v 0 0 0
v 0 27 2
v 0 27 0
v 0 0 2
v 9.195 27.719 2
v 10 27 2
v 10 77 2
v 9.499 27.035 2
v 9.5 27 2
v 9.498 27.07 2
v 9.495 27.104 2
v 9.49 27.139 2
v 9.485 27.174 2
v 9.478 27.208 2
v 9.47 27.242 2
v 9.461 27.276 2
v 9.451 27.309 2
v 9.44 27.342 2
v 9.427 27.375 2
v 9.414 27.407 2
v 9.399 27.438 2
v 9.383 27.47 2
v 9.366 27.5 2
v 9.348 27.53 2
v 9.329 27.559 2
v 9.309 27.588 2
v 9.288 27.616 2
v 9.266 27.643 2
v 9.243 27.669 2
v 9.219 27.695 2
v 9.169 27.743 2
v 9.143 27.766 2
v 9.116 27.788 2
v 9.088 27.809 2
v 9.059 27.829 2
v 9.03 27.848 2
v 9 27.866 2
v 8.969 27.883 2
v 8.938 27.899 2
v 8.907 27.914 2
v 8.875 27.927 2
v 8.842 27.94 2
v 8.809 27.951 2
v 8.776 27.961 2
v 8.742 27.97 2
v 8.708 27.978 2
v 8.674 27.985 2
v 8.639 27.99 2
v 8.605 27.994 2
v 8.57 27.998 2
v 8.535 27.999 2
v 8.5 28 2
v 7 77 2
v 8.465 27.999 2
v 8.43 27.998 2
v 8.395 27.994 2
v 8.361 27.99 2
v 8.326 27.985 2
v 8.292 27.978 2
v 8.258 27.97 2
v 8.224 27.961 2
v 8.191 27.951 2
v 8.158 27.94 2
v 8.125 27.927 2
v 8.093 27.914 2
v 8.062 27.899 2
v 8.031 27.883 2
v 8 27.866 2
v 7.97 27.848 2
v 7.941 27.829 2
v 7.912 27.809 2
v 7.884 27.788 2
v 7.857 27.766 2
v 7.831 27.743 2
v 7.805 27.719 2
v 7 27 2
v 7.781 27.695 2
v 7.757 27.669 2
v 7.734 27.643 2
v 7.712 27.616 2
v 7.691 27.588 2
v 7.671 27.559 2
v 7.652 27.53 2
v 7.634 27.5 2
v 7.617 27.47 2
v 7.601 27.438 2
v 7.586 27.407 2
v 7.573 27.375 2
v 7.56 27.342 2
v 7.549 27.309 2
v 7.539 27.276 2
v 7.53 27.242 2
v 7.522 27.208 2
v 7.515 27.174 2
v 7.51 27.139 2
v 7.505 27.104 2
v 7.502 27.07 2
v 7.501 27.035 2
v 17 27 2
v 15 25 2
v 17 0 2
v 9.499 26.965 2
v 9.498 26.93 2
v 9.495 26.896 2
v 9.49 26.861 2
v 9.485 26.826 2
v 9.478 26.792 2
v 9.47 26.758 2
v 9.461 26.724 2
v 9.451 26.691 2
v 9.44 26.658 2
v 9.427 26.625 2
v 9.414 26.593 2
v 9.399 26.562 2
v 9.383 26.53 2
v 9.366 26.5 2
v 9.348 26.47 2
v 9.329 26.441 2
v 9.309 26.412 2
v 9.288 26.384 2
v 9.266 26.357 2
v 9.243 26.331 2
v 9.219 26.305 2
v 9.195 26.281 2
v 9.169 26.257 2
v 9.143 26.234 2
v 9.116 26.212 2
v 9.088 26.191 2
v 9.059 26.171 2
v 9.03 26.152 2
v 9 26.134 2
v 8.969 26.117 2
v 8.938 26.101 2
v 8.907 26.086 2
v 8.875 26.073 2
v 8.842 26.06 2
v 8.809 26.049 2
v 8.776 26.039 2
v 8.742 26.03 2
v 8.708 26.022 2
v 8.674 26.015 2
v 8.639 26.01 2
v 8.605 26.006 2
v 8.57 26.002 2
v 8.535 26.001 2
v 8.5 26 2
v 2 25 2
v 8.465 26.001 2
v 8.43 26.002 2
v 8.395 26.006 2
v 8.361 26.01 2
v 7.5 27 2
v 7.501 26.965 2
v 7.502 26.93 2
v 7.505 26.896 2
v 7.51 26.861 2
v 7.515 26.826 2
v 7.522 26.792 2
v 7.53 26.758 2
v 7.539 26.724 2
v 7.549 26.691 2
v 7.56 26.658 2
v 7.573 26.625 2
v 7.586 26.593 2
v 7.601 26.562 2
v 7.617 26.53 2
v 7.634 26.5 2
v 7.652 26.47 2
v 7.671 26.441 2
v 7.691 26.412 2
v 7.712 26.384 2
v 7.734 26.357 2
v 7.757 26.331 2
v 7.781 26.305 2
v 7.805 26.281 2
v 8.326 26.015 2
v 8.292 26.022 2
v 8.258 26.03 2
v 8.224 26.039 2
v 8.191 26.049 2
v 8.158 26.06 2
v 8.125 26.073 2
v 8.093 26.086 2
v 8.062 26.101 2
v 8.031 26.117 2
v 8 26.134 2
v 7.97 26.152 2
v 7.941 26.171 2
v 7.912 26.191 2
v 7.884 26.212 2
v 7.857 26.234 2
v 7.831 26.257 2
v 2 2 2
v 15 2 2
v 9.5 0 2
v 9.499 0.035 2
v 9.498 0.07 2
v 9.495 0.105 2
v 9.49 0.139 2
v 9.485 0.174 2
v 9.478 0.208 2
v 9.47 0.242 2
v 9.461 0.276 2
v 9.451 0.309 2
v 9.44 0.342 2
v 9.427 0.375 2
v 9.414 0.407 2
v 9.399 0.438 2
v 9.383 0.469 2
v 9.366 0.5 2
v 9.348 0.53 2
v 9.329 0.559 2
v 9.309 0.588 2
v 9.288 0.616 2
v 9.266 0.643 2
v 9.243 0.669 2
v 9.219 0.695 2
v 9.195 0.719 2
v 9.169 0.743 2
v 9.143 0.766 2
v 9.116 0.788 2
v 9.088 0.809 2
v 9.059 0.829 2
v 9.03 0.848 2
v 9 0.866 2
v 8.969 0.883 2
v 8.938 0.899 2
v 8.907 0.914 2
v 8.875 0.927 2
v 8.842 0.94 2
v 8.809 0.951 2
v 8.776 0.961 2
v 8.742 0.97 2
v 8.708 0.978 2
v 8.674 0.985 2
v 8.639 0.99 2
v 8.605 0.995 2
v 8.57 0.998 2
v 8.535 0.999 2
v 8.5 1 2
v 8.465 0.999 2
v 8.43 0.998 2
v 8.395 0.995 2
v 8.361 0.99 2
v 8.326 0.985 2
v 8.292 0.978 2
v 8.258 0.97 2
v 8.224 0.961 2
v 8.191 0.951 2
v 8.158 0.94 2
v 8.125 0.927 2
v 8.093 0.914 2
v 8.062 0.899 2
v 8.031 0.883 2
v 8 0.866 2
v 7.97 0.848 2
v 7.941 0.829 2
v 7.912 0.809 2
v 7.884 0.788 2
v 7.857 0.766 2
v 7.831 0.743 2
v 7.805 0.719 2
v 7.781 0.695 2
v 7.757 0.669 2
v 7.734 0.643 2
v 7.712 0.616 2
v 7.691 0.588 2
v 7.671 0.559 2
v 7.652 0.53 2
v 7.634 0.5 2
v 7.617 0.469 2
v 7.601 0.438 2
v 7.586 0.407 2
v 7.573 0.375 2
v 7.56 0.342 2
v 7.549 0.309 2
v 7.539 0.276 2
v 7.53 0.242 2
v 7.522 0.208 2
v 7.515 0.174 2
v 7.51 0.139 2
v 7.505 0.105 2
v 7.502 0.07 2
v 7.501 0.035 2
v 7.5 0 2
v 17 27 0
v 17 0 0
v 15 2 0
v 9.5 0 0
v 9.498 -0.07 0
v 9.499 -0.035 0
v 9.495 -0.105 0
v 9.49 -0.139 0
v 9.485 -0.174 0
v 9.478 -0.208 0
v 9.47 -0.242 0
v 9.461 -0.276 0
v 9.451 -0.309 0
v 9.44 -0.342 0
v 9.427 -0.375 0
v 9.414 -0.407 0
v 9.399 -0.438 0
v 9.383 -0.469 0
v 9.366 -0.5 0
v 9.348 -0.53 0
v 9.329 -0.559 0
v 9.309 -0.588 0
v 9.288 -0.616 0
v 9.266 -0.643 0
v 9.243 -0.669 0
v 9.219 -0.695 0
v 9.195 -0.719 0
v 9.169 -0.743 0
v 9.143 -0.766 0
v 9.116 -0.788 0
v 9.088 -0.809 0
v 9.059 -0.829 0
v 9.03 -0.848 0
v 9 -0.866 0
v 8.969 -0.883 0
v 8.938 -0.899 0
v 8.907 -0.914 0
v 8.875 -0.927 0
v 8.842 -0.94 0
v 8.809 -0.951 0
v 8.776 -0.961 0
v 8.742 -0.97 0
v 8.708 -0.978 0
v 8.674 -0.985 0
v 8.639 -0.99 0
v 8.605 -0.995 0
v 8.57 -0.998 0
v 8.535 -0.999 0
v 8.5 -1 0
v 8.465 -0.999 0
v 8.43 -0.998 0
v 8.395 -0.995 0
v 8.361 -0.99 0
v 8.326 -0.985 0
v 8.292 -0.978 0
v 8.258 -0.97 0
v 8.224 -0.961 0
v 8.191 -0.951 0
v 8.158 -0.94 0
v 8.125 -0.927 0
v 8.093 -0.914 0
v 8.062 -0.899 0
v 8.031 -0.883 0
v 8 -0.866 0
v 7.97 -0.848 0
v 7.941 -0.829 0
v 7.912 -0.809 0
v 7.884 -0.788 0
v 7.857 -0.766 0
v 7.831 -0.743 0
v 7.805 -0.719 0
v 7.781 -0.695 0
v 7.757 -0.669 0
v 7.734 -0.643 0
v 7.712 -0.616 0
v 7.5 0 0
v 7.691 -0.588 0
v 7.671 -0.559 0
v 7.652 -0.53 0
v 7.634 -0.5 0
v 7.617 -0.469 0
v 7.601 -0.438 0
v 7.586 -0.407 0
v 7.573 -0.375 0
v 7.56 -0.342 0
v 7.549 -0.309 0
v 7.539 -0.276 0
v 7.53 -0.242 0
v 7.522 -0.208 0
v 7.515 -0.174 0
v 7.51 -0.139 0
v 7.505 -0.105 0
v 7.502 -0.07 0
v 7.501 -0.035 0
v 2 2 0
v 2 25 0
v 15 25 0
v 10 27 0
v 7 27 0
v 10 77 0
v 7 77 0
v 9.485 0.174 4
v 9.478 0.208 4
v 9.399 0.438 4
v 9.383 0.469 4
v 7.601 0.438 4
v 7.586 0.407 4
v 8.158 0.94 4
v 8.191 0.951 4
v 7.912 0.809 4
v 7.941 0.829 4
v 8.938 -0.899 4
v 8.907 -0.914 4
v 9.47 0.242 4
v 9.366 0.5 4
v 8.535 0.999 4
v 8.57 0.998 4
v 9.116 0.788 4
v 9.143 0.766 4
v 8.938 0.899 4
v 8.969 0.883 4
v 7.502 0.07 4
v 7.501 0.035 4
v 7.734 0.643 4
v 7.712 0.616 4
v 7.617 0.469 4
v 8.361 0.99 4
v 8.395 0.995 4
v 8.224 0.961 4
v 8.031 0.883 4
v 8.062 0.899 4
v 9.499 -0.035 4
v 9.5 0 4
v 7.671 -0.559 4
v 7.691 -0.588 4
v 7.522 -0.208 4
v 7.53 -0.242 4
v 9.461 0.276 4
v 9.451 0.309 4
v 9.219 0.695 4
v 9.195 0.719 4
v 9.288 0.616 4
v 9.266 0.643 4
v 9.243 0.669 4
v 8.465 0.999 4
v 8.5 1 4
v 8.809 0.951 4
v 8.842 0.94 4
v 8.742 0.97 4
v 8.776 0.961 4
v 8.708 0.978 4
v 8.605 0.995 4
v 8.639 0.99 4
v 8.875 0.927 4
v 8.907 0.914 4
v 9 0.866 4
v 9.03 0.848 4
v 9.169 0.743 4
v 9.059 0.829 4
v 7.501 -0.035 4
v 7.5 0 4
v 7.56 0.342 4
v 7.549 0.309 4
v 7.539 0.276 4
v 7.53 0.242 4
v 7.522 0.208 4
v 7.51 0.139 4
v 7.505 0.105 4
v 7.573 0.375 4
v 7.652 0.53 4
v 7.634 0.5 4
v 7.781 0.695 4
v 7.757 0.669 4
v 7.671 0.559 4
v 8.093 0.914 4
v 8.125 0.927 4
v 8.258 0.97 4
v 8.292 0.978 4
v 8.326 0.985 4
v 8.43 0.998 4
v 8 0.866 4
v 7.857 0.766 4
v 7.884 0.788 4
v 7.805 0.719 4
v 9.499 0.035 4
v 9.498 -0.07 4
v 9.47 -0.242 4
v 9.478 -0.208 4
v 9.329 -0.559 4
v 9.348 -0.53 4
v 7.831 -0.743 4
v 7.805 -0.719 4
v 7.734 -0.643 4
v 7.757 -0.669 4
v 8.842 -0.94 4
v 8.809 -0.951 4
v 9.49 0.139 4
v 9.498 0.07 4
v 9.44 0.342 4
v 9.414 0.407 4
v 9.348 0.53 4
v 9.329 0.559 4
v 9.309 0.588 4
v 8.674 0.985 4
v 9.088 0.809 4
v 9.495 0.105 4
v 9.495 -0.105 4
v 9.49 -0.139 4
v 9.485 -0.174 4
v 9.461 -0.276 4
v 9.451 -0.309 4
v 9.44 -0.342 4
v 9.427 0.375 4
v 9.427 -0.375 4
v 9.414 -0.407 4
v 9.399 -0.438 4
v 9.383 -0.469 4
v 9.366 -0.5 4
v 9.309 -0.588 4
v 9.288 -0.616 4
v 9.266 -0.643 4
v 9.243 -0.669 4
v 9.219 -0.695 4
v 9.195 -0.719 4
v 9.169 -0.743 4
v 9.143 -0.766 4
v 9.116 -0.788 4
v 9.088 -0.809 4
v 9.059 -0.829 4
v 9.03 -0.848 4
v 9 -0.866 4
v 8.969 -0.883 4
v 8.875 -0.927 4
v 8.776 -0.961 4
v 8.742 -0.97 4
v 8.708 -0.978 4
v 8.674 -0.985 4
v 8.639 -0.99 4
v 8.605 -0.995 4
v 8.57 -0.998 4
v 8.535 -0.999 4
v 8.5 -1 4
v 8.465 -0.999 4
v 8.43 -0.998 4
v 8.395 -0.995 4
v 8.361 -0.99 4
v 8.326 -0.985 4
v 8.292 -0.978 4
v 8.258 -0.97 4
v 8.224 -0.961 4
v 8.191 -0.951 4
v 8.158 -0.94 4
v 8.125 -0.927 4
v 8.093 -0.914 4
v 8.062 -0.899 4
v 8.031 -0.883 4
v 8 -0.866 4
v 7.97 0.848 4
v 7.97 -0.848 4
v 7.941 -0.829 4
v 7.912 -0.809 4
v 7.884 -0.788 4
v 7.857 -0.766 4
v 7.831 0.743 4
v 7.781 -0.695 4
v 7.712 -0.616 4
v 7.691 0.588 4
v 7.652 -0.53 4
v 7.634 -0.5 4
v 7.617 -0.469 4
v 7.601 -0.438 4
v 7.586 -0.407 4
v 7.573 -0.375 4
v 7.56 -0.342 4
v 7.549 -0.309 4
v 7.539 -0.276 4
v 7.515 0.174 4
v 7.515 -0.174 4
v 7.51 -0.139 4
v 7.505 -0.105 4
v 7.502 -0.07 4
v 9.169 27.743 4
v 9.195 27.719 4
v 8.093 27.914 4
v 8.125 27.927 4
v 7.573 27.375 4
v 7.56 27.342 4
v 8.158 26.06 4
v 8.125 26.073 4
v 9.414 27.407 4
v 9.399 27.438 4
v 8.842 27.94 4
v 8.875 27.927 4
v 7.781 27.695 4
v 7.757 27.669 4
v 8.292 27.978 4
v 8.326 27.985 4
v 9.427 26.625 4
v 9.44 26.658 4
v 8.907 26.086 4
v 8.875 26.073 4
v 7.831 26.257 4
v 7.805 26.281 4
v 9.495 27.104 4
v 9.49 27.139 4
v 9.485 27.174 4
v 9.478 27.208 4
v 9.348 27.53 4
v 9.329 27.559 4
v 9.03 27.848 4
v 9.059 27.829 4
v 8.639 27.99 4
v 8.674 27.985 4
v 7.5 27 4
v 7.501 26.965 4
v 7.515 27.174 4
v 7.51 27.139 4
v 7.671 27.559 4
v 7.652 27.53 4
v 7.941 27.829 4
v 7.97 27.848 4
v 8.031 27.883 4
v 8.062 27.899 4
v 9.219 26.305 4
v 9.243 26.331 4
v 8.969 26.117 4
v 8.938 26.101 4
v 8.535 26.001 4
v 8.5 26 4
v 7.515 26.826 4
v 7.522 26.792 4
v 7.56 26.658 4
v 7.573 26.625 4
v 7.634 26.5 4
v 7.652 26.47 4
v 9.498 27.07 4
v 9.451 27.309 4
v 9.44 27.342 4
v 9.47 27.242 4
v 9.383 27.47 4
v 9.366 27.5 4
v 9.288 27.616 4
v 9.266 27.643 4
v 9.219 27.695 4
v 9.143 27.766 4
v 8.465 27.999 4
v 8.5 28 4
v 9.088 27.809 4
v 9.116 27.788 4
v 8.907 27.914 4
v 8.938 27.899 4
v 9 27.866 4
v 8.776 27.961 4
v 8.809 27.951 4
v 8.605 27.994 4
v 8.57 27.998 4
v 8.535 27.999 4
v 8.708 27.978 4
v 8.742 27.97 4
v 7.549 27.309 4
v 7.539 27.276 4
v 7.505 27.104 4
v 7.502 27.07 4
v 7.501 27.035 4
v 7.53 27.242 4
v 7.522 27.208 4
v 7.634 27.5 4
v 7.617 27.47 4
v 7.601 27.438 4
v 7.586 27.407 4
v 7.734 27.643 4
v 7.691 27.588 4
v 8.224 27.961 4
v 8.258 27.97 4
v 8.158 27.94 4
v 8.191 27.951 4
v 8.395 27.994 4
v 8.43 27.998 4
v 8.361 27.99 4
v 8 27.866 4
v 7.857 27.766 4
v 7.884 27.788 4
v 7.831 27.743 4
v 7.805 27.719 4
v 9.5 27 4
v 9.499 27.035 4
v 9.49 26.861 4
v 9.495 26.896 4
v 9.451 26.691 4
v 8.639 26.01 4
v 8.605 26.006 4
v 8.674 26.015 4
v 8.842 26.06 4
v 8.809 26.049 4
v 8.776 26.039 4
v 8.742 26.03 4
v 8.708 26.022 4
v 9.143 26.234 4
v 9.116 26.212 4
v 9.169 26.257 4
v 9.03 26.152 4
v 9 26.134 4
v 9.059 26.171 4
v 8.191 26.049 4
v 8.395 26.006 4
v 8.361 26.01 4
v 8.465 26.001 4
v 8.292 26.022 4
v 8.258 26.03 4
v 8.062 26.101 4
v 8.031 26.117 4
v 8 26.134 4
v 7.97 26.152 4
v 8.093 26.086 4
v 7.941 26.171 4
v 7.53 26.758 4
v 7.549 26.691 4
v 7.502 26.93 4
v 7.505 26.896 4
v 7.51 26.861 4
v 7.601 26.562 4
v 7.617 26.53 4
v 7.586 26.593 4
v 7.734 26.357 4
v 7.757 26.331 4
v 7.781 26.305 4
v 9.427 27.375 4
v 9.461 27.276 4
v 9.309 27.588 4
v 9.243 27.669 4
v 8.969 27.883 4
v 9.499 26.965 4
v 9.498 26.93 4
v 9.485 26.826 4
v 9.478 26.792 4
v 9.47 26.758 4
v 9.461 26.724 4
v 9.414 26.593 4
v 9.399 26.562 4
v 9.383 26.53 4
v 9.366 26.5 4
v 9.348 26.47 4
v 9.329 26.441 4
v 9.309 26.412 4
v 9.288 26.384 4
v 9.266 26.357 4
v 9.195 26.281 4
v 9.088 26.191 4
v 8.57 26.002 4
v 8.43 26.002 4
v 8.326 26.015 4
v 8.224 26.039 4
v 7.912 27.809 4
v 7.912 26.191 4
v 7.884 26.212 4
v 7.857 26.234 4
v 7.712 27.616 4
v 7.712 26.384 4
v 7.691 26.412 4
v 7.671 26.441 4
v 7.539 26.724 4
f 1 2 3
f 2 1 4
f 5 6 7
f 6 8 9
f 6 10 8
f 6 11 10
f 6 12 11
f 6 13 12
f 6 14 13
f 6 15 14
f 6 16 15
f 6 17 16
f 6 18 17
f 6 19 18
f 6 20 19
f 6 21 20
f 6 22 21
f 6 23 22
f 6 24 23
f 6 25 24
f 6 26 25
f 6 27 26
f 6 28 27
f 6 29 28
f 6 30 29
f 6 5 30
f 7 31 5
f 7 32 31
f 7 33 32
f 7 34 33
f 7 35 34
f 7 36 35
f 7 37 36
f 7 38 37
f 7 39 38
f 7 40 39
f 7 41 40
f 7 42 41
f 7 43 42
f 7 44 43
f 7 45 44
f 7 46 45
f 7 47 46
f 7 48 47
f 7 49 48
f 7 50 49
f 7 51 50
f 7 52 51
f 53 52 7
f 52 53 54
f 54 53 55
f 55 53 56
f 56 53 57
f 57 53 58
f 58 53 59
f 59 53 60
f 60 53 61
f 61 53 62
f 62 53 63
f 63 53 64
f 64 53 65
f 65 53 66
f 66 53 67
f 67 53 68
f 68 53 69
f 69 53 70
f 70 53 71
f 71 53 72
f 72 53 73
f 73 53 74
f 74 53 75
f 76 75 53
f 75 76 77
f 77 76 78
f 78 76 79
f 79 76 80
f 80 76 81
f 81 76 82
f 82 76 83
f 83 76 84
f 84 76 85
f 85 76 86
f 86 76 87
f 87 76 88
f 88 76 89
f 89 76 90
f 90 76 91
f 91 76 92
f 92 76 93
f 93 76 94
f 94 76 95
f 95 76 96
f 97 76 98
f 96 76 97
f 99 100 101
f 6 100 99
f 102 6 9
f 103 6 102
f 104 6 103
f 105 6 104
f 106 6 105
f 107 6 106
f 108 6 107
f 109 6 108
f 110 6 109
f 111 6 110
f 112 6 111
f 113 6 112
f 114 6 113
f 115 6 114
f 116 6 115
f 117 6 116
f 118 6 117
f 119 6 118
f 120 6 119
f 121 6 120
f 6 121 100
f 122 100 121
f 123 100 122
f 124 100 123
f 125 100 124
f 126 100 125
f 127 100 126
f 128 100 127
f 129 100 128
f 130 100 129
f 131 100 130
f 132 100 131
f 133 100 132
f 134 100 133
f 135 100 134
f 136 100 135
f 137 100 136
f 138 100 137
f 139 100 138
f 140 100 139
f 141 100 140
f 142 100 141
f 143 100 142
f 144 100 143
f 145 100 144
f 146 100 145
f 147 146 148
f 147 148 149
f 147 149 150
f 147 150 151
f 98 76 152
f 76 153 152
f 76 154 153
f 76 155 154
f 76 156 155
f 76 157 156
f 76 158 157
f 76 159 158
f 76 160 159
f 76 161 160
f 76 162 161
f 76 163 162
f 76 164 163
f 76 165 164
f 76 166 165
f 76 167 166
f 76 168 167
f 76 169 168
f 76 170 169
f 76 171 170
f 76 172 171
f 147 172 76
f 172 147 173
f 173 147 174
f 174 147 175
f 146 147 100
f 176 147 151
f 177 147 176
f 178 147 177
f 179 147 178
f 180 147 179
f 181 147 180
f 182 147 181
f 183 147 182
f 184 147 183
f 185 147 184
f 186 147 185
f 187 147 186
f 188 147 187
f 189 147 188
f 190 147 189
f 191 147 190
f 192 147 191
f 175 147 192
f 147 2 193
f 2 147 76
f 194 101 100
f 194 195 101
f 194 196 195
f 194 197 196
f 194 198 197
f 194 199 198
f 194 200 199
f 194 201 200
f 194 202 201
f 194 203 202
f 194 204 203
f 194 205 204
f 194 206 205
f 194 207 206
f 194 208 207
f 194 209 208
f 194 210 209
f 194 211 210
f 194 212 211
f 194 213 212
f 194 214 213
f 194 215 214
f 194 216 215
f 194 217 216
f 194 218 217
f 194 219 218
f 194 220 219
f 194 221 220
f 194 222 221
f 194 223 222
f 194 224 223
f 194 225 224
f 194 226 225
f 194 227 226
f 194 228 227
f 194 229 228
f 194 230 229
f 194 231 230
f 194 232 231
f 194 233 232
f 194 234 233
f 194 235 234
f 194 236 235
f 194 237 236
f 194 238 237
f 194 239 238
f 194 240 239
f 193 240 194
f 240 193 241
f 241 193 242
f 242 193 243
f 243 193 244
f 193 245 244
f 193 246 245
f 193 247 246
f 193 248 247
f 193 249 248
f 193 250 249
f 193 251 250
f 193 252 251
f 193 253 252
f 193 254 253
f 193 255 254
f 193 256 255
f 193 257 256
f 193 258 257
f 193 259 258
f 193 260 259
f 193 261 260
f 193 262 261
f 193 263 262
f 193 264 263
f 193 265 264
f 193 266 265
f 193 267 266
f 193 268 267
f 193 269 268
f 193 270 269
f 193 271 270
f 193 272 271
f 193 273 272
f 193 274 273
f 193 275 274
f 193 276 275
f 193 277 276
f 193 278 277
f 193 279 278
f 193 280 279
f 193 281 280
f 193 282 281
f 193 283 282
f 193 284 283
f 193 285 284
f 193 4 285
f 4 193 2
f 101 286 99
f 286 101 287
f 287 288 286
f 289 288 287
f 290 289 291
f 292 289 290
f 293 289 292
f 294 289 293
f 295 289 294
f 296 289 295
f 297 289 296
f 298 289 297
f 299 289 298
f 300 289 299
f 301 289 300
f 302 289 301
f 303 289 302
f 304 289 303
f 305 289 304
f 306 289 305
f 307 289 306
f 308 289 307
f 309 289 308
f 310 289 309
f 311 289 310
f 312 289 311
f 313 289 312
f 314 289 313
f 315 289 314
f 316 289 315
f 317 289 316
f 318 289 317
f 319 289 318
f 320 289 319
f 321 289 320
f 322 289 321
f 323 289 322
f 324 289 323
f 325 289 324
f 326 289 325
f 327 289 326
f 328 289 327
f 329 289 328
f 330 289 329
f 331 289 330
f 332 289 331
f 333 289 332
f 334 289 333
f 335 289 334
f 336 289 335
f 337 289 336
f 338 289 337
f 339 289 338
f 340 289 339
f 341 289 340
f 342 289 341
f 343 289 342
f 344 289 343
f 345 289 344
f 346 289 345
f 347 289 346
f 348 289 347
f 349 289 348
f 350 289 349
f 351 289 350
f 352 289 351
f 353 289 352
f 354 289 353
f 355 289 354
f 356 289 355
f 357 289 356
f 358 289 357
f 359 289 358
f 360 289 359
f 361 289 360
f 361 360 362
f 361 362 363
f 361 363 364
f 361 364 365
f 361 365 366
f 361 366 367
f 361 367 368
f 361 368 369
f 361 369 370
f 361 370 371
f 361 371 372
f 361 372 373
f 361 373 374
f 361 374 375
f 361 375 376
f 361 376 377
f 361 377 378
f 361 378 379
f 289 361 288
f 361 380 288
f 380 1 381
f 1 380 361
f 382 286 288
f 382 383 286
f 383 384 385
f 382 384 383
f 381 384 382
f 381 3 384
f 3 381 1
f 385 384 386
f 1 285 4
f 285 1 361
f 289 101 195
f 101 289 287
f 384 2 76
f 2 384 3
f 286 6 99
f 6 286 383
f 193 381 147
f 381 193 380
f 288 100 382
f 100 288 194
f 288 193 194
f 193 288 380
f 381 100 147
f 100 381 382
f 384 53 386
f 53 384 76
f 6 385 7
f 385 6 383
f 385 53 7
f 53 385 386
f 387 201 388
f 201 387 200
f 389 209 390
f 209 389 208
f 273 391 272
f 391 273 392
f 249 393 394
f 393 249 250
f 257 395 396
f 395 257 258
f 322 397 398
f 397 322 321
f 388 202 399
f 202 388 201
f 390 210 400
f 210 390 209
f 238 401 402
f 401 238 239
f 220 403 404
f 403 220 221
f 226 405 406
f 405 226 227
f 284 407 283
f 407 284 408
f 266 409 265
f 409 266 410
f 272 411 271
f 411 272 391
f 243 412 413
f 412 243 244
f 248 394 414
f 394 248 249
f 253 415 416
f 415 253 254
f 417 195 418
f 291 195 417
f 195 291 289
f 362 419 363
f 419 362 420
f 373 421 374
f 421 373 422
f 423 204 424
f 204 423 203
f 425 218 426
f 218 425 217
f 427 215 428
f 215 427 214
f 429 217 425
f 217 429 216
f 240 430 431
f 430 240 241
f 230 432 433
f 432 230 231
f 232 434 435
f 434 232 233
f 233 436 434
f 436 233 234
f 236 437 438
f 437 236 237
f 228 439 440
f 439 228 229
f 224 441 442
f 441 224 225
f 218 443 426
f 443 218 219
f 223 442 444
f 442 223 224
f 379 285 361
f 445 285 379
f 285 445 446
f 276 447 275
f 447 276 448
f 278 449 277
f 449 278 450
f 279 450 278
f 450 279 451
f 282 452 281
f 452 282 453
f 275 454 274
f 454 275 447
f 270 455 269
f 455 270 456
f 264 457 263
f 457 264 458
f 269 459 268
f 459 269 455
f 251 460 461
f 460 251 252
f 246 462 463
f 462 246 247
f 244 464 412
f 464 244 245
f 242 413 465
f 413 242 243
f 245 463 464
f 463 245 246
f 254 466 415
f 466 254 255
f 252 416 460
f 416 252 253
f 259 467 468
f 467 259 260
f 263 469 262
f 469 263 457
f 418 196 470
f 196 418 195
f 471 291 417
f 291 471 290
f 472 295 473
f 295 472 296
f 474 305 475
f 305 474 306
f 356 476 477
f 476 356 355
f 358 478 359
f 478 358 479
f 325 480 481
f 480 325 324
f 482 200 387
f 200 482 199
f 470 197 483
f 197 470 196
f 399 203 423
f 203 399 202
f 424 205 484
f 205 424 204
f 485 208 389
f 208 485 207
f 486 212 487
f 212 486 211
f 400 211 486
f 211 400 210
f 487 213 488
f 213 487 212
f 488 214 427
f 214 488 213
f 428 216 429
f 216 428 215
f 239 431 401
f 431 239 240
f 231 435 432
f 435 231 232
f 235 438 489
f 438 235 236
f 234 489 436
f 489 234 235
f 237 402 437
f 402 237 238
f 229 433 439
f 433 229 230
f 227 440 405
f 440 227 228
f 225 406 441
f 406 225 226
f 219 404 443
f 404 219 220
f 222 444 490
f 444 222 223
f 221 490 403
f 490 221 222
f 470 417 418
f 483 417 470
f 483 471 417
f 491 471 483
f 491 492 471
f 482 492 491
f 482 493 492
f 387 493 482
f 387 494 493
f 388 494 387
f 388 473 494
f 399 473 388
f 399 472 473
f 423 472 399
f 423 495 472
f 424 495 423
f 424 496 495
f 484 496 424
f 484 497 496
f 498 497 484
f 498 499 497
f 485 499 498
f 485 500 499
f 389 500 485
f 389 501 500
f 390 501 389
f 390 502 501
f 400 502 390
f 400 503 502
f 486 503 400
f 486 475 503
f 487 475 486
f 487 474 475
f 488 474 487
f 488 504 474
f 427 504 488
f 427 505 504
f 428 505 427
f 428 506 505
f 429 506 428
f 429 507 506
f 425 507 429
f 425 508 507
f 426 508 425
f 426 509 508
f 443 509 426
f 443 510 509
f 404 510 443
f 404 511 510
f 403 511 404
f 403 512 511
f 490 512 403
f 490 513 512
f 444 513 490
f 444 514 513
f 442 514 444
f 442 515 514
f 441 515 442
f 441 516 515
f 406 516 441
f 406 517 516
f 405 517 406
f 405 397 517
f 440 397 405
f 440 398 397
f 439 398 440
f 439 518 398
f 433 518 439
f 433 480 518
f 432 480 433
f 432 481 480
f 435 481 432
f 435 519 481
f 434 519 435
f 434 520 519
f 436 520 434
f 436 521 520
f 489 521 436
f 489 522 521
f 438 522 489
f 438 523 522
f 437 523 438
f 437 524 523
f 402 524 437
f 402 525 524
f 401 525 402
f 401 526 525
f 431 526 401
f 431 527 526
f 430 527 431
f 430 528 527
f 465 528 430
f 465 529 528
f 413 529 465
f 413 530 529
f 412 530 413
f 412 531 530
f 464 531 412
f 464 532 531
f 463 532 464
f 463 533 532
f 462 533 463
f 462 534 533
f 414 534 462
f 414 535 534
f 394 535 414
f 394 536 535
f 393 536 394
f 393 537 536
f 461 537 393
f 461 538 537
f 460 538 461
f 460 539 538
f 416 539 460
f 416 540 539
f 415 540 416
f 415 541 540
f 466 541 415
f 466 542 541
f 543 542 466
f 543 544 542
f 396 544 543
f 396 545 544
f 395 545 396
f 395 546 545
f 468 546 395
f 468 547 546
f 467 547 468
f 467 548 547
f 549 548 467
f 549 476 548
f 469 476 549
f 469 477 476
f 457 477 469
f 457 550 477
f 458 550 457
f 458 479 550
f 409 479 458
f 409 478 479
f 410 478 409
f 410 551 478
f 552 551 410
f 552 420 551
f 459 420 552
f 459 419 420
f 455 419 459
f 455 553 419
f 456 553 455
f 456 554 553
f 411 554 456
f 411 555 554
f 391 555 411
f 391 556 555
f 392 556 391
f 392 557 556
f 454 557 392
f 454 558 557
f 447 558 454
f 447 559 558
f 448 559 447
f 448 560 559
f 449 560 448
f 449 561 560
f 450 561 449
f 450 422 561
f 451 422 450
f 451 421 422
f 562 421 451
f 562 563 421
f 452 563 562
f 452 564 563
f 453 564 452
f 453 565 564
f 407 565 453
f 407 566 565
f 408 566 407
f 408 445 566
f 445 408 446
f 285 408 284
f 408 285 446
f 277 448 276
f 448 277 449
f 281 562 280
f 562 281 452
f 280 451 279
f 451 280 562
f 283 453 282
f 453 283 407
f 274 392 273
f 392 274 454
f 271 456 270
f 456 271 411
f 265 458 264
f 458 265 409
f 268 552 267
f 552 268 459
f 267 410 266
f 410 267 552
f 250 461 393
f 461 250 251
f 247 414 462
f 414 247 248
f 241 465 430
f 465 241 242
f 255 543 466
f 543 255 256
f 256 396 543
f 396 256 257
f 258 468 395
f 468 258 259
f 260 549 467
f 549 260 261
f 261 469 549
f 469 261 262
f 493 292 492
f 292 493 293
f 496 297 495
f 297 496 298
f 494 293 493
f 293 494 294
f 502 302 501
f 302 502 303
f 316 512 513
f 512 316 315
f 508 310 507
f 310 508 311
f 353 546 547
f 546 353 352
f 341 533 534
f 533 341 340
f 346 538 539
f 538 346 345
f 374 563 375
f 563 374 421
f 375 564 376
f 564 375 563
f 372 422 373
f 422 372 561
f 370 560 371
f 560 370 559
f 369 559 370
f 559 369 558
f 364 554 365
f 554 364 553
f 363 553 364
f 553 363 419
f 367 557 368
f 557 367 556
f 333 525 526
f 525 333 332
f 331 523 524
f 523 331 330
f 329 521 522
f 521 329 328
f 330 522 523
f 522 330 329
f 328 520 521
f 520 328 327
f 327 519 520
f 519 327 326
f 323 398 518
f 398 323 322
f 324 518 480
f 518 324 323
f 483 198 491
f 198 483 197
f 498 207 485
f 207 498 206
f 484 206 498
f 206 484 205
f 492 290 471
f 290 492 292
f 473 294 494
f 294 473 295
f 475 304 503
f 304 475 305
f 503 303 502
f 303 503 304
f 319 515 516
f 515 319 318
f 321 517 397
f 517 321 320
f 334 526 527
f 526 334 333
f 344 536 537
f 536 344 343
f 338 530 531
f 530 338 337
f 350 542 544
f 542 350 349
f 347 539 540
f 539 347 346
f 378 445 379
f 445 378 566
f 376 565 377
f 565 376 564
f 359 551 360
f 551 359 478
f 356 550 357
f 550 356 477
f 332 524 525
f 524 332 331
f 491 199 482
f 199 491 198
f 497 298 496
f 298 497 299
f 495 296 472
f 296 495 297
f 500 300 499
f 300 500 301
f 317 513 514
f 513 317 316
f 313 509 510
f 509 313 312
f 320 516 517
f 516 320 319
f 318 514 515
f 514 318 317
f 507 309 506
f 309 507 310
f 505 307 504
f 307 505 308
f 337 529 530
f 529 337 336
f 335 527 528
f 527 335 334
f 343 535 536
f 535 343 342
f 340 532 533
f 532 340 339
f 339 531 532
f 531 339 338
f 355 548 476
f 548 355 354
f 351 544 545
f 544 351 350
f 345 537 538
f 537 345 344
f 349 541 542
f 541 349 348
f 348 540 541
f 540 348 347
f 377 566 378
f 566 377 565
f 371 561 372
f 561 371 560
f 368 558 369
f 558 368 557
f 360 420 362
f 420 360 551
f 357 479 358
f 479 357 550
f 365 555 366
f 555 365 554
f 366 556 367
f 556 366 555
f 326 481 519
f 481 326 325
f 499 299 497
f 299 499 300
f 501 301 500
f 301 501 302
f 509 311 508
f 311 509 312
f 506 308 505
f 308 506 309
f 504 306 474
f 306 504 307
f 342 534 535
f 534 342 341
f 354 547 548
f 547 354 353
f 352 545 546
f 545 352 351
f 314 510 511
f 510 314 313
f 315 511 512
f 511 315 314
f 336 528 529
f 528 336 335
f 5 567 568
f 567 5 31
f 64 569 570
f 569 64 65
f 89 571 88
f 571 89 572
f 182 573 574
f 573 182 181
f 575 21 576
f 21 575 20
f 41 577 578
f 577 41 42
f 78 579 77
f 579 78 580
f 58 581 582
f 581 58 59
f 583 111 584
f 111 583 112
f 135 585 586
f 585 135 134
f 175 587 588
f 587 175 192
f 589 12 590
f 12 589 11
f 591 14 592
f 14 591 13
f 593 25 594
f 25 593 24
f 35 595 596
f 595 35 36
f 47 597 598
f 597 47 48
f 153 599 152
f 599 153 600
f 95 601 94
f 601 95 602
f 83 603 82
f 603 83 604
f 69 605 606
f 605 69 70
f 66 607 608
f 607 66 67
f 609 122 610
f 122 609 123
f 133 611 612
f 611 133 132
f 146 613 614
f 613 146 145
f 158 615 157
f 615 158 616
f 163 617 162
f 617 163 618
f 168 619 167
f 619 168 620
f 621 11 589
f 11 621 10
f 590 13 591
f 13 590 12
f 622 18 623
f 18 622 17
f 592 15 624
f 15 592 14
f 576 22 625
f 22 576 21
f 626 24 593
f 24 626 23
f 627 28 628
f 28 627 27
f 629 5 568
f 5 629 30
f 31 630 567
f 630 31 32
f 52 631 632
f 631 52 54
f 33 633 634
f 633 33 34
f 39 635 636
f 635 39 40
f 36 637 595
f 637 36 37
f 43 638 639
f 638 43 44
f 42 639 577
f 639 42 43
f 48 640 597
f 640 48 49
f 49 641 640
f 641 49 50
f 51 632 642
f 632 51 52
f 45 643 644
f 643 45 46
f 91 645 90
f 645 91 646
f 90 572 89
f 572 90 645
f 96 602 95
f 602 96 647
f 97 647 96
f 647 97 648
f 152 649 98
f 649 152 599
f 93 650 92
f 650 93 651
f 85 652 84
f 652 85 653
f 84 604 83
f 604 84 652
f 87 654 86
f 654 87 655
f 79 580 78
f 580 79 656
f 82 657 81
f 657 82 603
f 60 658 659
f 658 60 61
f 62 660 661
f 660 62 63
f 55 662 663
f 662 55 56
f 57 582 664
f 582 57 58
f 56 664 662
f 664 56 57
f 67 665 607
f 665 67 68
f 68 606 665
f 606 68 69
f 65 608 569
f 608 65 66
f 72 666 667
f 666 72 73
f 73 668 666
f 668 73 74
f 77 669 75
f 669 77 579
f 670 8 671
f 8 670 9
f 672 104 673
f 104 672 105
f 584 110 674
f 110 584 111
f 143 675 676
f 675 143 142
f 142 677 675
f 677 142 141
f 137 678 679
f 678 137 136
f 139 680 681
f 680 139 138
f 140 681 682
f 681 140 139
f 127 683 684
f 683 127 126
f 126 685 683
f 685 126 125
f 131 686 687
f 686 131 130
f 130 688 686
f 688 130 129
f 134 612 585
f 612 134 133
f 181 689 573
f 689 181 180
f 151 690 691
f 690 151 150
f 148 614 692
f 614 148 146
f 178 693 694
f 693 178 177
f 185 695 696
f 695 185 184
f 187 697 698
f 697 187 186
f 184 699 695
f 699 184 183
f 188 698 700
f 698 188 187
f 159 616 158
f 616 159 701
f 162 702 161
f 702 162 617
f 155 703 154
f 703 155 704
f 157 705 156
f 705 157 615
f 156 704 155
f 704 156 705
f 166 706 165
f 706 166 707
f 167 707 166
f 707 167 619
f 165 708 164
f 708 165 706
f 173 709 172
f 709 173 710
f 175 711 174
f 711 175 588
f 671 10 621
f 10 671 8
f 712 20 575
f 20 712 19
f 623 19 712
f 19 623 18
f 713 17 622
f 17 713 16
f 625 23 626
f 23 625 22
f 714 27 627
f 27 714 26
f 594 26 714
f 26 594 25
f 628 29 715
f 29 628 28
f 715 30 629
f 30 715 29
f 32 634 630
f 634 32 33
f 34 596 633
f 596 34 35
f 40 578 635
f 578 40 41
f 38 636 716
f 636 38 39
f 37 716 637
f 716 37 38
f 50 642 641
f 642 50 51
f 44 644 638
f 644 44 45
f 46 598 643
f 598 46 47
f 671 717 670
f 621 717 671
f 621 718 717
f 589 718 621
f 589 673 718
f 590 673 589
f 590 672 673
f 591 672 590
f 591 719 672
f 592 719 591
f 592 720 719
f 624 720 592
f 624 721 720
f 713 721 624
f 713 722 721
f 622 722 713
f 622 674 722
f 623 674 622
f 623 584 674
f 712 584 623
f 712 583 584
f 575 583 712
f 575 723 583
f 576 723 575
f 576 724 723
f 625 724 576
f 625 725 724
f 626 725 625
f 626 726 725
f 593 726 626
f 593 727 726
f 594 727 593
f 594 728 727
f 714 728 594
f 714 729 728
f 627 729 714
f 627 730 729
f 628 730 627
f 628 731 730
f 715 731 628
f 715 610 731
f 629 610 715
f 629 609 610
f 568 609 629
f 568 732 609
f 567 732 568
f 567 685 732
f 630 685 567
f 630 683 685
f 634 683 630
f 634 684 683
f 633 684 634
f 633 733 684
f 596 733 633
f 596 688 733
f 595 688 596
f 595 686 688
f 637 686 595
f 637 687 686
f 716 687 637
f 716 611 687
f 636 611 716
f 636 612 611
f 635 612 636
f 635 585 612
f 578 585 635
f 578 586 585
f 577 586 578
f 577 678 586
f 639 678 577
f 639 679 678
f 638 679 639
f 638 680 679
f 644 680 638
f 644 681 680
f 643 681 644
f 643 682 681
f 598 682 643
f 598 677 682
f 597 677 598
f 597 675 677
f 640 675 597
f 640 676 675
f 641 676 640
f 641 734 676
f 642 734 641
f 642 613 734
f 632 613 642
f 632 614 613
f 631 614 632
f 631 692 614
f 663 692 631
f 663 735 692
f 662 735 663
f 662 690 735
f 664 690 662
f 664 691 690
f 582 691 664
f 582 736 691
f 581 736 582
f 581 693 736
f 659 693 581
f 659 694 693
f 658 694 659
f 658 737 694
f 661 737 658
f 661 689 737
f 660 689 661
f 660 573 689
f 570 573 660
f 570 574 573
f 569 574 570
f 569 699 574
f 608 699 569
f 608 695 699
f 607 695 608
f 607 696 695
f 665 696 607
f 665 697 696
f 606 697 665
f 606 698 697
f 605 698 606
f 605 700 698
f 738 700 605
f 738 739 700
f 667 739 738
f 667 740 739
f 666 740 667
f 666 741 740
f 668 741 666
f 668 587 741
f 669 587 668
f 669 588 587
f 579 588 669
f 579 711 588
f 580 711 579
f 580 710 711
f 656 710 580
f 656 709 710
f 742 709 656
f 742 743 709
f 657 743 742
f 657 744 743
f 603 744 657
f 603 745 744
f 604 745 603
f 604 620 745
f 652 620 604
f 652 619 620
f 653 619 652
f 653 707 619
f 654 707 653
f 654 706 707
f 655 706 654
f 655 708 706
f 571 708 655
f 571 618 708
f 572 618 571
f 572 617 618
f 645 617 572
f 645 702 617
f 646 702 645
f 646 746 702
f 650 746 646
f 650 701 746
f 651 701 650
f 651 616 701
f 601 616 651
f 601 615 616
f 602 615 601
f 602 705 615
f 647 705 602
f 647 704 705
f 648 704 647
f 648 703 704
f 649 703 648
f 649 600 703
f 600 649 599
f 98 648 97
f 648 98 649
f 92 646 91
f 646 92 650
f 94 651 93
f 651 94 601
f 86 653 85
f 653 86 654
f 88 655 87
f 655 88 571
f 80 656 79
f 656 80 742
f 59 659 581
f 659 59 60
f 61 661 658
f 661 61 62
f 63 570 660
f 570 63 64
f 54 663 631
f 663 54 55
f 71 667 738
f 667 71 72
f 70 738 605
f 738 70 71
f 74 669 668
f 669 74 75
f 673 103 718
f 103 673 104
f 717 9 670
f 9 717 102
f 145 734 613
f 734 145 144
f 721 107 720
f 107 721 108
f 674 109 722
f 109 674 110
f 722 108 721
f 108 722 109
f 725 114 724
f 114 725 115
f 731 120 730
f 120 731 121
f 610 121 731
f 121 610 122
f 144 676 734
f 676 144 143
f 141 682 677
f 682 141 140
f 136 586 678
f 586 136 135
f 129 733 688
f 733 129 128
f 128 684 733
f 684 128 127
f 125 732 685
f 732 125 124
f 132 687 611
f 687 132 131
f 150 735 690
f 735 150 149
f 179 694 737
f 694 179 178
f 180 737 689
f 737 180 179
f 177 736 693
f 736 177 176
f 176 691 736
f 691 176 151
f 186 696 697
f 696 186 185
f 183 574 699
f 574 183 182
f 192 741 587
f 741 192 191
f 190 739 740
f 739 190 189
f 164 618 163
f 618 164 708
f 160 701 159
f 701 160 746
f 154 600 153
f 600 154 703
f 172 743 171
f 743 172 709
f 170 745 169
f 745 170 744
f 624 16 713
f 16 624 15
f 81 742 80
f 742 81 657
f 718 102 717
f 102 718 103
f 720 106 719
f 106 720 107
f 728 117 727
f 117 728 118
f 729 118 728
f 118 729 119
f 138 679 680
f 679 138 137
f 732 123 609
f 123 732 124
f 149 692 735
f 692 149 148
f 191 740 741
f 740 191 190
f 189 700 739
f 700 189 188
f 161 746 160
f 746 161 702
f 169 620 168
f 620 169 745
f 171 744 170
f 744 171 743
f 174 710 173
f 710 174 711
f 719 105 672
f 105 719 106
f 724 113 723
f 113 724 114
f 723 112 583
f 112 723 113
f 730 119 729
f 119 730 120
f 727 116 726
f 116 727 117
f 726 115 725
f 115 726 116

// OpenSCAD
$fn=180;
thickness=2;
length=50;
border=2;
servoWidth=13;
servoLength=23;

w=servoWidth+(2*border);
l=servoLength+(2*border);
cutOffset=10;

module foot() {
 
union() {
    difference() {
        cube([w,l,thickness]);
        translate([2,2,0]) cube([servoWidth,servoLength,thickness+cutOffset]);
    }
    
    translate([(w-3)/2,l,0]) cube([3,length,thickness]);
    
    // servo nibble
    translate([w/2,border-2,0]) cylinder(d=2,h=thickness+2);
    translate([w/2,servoLength+border+2,thickness]) cylinder(d=2,h=2);
}

}

foot();
